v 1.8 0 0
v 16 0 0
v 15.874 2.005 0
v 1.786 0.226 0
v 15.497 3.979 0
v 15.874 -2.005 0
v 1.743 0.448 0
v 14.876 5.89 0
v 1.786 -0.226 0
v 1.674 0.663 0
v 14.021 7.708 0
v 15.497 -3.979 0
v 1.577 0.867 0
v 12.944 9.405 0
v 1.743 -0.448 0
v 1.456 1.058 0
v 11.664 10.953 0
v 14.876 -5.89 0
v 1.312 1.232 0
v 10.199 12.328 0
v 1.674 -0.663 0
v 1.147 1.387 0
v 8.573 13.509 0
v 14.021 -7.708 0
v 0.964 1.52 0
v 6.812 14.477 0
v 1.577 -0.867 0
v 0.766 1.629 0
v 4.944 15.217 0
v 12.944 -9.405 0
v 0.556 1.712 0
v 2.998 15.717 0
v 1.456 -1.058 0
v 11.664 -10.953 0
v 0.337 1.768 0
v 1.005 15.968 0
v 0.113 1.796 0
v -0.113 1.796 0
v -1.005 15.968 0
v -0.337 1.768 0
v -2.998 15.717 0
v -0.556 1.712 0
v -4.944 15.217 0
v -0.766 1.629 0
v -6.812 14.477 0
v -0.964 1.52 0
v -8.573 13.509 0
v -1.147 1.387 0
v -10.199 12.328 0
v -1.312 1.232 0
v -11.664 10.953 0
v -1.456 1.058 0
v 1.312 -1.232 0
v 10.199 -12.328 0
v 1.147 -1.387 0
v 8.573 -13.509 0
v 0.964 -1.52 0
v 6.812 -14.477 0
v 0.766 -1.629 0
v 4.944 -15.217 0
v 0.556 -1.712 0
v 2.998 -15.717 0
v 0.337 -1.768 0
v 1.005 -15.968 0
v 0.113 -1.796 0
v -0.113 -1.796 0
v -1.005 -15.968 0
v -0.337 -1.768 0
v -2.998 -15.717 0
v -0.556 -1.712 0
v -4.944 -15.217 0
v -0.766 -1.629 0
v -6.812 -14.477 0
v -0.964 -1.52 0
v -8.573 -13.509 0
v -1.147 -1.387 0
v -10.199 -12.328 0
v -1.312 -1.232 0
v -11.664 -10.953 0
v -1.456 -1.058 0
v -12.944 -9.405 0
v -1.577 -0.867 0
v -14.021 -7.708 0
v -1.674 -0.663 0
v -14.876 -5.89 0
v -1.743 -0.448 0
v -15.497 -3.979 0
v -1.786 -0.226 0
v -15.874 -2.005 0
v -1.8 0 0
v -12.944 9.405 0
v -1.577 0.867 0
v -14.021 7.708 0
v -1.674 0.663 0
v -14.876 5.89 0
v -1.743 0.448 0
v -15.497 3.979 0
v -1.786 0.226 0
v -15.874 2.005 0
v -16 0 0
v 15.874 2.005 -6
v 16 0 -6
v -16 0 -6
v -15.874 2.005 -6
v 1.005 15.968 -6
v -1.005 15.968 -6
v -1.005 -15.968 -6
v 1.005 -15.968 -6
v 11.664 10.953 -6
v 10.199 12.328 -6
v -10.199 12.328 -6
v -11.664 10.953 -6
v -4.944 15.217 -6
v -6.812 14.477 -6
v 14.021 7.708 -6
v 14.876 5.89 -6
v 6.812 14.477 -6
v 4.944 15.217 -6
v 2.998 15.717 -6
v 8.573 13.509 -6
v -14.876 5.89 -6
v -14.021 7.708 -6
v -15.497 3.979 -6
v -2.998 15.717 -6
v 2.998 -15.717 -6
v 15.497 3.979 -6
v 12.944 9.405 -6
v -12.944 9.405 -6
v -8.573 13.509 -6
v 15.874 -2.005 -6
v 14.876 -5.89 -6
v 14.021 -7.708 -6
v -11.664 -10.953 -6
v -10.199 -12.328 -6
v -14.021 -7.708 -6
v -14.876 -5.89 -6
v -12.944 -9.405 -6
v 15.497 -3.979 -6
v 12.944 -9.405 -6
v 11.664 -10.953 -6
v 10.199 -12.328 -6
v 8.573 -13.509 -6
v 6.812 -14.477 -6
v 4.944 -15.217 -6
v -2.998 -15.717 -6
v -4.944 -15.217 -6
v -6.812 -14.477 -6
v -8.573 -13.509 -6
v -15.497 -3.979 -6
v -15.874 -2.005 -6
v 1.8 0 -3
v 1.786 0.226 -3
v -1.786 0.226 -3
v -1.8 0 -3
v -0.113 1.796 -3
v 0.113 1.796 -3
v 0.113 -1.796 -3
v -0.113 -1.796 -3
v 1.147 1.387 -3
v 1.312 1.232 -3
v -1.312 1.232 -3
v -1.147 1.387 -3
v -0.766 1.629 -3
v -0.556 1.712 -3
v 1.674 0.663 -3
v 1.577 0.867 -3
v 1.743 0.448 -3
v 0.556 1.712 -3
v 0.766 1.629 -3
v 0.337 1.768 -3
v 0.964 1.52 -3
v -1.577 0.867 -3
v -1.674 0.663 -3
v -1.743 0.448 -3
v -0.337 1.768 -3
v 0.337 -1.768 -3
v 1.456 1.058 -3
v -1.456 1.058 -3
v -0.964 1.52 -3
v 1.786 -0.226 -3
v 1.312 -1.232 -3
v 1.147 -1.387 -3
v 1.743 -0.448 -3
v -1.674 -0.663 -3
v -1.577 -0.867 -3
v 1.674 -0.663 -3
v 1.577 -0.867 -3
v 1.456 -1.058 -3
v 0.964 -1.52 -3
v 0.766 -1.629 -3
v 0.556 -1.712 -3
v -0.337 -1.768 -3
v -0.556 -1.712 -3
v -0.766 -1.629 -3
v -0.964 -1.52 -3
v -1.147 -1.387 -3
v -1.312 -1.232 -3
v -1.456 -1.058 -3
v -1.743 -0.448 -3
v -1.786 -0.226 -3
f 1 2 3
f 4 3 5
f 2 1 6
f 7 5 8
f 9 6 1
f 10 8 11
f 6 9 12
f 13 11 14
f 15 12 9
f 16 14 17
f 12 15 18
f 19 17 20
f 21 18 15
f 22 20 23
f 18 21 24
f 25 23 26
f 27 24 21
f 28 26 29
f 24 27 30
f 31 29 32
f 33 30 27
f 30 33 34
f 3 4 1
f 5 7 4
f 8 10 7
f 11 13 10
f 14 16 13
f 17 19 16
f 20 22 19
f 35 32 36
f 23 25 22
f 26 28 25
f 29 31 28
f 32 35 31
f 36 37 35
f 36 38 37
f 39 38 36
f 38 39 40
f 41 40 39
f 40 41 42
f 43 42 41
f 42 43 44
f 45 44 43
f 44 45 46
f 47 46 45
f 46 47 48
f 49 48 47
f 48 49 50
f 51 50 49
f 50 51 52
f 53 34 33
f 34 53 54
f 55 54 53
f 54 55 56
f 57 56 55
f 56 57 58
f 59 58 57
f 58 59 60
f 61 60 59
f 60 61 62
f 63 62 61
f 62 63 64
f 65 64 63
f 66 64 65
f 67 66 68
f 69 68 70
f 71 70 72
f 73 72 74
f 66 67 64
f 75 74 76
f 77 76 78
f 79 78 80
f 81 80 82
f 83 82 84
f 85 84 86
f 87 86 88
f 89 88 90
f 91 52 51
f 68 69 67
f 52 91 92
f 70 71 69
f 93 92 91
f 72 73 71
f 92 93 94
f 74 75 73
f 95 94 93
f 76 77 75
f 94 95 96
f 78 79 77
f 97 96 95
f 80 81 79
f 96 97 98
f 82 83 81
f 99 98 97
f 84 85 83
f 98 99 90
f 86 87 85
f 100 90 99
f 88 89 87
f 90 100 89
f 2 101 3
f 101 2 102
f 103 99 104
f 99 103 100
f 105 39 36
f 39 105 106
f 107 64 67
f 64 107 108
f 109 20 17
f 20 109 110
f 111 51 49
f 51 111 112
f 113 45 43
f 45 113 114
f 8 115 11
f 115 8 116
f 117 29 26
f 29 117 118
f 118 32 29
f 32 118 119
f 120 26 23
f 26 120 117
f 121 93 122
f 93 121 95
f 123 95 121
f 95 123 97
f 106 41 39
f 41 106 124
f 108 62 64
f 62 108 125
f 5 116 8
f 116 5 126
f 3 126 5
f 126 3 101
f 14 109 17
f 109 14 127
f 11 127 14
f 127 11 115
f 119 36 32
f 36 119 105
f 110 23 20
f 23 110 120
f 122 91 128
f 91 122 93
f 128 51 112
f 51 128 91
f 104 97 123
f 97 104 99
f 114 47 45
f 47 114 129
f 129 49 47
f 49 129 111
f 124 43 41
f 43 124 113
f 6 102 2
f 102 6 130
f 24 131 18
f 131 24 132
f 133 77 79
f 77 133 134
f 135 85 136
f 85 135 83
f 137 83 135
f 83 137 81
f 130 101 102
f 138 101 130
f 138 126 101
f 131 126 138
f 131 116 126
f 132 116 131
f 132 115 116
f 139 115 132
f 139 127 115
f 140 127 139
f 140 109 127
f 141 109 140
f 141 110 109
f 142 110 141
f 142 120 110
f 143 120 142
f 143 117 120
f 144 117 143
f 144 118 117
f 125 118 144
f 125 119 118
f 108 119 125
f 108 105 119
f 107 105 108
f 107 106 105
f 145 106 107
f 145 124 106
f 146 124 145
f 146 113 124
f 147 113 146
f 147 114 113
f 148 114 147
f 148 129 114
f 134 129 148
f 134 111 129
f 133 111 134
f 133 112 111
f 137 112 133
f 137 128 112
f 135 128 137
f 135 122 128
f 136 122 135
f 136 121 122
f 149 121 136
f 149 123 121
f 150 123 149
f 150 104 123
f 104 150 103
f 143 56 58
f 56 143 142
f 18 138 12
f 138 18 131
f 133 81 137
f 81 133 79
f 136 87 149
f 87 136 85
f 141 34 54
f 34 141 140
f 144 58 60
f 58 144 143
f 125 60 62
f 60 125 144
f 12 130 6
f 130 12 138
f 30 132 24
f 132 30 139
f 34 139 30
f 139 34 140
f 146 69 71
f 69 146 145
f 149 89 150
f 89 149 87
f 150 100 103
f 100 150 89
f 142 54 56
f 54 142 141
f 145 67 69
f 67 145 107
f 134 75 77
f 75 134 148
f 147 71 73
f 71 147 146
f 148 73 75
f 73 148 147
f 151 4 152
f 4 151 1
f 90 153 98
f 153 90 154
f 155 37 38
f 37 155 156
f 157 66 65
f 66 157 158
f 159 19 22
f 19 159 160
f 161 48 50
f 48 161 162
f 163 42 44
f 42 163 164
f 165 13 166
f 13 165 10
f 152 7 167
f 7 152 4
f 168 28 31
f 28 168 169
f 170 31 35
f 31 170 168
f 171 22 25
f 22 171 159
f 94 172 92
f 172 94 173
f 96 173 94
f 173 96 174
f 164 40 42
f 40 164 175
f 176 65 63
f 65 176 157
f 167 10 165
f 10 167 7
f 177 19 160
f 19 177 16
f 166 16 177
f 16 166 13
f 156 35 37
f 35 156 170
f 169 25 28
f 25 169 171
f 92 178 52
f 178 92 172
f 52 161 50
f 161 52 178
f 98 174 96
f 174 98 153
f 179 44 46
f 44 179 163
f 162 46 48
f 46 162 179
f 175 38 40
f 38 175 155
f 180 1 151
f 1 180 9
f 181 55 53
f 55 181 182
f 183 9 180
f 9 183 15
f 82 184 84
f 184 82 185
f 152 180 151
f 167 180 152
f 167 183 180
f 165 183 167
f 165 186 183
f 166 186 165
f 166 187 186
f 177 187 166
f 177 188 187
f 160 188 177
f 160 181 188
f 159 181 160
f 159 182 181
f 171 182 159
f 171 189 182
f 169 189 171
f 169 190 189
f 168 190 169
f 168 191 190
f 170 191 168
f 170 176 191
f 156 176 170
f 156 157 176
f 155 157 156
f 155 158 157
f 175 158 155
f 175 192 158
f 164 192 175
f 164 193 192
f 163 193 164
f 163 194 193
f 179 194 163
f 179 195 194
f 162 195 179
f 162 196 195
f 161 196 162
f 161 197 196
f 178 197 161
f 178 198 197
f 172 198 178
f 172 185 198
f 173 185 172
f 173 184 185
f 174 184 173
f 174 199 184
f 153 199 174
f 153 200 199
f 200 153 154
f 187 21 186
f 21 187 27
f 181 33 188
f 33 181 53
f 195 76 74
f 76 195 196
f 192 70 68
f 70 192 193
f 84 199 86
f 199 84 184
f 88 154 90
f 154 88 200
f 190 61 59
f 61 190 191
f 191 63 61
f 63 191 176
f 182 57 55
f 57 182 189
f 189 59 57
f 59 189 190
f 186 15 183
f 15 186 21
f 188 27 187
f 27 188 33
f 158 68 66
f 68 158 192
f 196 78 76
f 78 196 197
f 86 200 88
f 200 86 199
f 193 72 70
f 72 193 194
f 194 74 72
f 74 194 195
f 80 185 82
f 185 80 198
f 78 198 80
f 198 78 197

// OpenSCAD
$fn = 50;


difference() {
	union() {
		translate(v = [0, 0, -3.0000000000]) {
			cylinder(h = 3, r = 10.0000000000);
		}
		translate(v = [0, 0, -6.0000000000]) {
			cylinder(h = 6, r = 16.0000000000);
		}
	}
	union() {
		#translate(v = [0, 0, -3]) {
			cylinder(h = 3, r = 1.8000000000);
		}
	}
}
